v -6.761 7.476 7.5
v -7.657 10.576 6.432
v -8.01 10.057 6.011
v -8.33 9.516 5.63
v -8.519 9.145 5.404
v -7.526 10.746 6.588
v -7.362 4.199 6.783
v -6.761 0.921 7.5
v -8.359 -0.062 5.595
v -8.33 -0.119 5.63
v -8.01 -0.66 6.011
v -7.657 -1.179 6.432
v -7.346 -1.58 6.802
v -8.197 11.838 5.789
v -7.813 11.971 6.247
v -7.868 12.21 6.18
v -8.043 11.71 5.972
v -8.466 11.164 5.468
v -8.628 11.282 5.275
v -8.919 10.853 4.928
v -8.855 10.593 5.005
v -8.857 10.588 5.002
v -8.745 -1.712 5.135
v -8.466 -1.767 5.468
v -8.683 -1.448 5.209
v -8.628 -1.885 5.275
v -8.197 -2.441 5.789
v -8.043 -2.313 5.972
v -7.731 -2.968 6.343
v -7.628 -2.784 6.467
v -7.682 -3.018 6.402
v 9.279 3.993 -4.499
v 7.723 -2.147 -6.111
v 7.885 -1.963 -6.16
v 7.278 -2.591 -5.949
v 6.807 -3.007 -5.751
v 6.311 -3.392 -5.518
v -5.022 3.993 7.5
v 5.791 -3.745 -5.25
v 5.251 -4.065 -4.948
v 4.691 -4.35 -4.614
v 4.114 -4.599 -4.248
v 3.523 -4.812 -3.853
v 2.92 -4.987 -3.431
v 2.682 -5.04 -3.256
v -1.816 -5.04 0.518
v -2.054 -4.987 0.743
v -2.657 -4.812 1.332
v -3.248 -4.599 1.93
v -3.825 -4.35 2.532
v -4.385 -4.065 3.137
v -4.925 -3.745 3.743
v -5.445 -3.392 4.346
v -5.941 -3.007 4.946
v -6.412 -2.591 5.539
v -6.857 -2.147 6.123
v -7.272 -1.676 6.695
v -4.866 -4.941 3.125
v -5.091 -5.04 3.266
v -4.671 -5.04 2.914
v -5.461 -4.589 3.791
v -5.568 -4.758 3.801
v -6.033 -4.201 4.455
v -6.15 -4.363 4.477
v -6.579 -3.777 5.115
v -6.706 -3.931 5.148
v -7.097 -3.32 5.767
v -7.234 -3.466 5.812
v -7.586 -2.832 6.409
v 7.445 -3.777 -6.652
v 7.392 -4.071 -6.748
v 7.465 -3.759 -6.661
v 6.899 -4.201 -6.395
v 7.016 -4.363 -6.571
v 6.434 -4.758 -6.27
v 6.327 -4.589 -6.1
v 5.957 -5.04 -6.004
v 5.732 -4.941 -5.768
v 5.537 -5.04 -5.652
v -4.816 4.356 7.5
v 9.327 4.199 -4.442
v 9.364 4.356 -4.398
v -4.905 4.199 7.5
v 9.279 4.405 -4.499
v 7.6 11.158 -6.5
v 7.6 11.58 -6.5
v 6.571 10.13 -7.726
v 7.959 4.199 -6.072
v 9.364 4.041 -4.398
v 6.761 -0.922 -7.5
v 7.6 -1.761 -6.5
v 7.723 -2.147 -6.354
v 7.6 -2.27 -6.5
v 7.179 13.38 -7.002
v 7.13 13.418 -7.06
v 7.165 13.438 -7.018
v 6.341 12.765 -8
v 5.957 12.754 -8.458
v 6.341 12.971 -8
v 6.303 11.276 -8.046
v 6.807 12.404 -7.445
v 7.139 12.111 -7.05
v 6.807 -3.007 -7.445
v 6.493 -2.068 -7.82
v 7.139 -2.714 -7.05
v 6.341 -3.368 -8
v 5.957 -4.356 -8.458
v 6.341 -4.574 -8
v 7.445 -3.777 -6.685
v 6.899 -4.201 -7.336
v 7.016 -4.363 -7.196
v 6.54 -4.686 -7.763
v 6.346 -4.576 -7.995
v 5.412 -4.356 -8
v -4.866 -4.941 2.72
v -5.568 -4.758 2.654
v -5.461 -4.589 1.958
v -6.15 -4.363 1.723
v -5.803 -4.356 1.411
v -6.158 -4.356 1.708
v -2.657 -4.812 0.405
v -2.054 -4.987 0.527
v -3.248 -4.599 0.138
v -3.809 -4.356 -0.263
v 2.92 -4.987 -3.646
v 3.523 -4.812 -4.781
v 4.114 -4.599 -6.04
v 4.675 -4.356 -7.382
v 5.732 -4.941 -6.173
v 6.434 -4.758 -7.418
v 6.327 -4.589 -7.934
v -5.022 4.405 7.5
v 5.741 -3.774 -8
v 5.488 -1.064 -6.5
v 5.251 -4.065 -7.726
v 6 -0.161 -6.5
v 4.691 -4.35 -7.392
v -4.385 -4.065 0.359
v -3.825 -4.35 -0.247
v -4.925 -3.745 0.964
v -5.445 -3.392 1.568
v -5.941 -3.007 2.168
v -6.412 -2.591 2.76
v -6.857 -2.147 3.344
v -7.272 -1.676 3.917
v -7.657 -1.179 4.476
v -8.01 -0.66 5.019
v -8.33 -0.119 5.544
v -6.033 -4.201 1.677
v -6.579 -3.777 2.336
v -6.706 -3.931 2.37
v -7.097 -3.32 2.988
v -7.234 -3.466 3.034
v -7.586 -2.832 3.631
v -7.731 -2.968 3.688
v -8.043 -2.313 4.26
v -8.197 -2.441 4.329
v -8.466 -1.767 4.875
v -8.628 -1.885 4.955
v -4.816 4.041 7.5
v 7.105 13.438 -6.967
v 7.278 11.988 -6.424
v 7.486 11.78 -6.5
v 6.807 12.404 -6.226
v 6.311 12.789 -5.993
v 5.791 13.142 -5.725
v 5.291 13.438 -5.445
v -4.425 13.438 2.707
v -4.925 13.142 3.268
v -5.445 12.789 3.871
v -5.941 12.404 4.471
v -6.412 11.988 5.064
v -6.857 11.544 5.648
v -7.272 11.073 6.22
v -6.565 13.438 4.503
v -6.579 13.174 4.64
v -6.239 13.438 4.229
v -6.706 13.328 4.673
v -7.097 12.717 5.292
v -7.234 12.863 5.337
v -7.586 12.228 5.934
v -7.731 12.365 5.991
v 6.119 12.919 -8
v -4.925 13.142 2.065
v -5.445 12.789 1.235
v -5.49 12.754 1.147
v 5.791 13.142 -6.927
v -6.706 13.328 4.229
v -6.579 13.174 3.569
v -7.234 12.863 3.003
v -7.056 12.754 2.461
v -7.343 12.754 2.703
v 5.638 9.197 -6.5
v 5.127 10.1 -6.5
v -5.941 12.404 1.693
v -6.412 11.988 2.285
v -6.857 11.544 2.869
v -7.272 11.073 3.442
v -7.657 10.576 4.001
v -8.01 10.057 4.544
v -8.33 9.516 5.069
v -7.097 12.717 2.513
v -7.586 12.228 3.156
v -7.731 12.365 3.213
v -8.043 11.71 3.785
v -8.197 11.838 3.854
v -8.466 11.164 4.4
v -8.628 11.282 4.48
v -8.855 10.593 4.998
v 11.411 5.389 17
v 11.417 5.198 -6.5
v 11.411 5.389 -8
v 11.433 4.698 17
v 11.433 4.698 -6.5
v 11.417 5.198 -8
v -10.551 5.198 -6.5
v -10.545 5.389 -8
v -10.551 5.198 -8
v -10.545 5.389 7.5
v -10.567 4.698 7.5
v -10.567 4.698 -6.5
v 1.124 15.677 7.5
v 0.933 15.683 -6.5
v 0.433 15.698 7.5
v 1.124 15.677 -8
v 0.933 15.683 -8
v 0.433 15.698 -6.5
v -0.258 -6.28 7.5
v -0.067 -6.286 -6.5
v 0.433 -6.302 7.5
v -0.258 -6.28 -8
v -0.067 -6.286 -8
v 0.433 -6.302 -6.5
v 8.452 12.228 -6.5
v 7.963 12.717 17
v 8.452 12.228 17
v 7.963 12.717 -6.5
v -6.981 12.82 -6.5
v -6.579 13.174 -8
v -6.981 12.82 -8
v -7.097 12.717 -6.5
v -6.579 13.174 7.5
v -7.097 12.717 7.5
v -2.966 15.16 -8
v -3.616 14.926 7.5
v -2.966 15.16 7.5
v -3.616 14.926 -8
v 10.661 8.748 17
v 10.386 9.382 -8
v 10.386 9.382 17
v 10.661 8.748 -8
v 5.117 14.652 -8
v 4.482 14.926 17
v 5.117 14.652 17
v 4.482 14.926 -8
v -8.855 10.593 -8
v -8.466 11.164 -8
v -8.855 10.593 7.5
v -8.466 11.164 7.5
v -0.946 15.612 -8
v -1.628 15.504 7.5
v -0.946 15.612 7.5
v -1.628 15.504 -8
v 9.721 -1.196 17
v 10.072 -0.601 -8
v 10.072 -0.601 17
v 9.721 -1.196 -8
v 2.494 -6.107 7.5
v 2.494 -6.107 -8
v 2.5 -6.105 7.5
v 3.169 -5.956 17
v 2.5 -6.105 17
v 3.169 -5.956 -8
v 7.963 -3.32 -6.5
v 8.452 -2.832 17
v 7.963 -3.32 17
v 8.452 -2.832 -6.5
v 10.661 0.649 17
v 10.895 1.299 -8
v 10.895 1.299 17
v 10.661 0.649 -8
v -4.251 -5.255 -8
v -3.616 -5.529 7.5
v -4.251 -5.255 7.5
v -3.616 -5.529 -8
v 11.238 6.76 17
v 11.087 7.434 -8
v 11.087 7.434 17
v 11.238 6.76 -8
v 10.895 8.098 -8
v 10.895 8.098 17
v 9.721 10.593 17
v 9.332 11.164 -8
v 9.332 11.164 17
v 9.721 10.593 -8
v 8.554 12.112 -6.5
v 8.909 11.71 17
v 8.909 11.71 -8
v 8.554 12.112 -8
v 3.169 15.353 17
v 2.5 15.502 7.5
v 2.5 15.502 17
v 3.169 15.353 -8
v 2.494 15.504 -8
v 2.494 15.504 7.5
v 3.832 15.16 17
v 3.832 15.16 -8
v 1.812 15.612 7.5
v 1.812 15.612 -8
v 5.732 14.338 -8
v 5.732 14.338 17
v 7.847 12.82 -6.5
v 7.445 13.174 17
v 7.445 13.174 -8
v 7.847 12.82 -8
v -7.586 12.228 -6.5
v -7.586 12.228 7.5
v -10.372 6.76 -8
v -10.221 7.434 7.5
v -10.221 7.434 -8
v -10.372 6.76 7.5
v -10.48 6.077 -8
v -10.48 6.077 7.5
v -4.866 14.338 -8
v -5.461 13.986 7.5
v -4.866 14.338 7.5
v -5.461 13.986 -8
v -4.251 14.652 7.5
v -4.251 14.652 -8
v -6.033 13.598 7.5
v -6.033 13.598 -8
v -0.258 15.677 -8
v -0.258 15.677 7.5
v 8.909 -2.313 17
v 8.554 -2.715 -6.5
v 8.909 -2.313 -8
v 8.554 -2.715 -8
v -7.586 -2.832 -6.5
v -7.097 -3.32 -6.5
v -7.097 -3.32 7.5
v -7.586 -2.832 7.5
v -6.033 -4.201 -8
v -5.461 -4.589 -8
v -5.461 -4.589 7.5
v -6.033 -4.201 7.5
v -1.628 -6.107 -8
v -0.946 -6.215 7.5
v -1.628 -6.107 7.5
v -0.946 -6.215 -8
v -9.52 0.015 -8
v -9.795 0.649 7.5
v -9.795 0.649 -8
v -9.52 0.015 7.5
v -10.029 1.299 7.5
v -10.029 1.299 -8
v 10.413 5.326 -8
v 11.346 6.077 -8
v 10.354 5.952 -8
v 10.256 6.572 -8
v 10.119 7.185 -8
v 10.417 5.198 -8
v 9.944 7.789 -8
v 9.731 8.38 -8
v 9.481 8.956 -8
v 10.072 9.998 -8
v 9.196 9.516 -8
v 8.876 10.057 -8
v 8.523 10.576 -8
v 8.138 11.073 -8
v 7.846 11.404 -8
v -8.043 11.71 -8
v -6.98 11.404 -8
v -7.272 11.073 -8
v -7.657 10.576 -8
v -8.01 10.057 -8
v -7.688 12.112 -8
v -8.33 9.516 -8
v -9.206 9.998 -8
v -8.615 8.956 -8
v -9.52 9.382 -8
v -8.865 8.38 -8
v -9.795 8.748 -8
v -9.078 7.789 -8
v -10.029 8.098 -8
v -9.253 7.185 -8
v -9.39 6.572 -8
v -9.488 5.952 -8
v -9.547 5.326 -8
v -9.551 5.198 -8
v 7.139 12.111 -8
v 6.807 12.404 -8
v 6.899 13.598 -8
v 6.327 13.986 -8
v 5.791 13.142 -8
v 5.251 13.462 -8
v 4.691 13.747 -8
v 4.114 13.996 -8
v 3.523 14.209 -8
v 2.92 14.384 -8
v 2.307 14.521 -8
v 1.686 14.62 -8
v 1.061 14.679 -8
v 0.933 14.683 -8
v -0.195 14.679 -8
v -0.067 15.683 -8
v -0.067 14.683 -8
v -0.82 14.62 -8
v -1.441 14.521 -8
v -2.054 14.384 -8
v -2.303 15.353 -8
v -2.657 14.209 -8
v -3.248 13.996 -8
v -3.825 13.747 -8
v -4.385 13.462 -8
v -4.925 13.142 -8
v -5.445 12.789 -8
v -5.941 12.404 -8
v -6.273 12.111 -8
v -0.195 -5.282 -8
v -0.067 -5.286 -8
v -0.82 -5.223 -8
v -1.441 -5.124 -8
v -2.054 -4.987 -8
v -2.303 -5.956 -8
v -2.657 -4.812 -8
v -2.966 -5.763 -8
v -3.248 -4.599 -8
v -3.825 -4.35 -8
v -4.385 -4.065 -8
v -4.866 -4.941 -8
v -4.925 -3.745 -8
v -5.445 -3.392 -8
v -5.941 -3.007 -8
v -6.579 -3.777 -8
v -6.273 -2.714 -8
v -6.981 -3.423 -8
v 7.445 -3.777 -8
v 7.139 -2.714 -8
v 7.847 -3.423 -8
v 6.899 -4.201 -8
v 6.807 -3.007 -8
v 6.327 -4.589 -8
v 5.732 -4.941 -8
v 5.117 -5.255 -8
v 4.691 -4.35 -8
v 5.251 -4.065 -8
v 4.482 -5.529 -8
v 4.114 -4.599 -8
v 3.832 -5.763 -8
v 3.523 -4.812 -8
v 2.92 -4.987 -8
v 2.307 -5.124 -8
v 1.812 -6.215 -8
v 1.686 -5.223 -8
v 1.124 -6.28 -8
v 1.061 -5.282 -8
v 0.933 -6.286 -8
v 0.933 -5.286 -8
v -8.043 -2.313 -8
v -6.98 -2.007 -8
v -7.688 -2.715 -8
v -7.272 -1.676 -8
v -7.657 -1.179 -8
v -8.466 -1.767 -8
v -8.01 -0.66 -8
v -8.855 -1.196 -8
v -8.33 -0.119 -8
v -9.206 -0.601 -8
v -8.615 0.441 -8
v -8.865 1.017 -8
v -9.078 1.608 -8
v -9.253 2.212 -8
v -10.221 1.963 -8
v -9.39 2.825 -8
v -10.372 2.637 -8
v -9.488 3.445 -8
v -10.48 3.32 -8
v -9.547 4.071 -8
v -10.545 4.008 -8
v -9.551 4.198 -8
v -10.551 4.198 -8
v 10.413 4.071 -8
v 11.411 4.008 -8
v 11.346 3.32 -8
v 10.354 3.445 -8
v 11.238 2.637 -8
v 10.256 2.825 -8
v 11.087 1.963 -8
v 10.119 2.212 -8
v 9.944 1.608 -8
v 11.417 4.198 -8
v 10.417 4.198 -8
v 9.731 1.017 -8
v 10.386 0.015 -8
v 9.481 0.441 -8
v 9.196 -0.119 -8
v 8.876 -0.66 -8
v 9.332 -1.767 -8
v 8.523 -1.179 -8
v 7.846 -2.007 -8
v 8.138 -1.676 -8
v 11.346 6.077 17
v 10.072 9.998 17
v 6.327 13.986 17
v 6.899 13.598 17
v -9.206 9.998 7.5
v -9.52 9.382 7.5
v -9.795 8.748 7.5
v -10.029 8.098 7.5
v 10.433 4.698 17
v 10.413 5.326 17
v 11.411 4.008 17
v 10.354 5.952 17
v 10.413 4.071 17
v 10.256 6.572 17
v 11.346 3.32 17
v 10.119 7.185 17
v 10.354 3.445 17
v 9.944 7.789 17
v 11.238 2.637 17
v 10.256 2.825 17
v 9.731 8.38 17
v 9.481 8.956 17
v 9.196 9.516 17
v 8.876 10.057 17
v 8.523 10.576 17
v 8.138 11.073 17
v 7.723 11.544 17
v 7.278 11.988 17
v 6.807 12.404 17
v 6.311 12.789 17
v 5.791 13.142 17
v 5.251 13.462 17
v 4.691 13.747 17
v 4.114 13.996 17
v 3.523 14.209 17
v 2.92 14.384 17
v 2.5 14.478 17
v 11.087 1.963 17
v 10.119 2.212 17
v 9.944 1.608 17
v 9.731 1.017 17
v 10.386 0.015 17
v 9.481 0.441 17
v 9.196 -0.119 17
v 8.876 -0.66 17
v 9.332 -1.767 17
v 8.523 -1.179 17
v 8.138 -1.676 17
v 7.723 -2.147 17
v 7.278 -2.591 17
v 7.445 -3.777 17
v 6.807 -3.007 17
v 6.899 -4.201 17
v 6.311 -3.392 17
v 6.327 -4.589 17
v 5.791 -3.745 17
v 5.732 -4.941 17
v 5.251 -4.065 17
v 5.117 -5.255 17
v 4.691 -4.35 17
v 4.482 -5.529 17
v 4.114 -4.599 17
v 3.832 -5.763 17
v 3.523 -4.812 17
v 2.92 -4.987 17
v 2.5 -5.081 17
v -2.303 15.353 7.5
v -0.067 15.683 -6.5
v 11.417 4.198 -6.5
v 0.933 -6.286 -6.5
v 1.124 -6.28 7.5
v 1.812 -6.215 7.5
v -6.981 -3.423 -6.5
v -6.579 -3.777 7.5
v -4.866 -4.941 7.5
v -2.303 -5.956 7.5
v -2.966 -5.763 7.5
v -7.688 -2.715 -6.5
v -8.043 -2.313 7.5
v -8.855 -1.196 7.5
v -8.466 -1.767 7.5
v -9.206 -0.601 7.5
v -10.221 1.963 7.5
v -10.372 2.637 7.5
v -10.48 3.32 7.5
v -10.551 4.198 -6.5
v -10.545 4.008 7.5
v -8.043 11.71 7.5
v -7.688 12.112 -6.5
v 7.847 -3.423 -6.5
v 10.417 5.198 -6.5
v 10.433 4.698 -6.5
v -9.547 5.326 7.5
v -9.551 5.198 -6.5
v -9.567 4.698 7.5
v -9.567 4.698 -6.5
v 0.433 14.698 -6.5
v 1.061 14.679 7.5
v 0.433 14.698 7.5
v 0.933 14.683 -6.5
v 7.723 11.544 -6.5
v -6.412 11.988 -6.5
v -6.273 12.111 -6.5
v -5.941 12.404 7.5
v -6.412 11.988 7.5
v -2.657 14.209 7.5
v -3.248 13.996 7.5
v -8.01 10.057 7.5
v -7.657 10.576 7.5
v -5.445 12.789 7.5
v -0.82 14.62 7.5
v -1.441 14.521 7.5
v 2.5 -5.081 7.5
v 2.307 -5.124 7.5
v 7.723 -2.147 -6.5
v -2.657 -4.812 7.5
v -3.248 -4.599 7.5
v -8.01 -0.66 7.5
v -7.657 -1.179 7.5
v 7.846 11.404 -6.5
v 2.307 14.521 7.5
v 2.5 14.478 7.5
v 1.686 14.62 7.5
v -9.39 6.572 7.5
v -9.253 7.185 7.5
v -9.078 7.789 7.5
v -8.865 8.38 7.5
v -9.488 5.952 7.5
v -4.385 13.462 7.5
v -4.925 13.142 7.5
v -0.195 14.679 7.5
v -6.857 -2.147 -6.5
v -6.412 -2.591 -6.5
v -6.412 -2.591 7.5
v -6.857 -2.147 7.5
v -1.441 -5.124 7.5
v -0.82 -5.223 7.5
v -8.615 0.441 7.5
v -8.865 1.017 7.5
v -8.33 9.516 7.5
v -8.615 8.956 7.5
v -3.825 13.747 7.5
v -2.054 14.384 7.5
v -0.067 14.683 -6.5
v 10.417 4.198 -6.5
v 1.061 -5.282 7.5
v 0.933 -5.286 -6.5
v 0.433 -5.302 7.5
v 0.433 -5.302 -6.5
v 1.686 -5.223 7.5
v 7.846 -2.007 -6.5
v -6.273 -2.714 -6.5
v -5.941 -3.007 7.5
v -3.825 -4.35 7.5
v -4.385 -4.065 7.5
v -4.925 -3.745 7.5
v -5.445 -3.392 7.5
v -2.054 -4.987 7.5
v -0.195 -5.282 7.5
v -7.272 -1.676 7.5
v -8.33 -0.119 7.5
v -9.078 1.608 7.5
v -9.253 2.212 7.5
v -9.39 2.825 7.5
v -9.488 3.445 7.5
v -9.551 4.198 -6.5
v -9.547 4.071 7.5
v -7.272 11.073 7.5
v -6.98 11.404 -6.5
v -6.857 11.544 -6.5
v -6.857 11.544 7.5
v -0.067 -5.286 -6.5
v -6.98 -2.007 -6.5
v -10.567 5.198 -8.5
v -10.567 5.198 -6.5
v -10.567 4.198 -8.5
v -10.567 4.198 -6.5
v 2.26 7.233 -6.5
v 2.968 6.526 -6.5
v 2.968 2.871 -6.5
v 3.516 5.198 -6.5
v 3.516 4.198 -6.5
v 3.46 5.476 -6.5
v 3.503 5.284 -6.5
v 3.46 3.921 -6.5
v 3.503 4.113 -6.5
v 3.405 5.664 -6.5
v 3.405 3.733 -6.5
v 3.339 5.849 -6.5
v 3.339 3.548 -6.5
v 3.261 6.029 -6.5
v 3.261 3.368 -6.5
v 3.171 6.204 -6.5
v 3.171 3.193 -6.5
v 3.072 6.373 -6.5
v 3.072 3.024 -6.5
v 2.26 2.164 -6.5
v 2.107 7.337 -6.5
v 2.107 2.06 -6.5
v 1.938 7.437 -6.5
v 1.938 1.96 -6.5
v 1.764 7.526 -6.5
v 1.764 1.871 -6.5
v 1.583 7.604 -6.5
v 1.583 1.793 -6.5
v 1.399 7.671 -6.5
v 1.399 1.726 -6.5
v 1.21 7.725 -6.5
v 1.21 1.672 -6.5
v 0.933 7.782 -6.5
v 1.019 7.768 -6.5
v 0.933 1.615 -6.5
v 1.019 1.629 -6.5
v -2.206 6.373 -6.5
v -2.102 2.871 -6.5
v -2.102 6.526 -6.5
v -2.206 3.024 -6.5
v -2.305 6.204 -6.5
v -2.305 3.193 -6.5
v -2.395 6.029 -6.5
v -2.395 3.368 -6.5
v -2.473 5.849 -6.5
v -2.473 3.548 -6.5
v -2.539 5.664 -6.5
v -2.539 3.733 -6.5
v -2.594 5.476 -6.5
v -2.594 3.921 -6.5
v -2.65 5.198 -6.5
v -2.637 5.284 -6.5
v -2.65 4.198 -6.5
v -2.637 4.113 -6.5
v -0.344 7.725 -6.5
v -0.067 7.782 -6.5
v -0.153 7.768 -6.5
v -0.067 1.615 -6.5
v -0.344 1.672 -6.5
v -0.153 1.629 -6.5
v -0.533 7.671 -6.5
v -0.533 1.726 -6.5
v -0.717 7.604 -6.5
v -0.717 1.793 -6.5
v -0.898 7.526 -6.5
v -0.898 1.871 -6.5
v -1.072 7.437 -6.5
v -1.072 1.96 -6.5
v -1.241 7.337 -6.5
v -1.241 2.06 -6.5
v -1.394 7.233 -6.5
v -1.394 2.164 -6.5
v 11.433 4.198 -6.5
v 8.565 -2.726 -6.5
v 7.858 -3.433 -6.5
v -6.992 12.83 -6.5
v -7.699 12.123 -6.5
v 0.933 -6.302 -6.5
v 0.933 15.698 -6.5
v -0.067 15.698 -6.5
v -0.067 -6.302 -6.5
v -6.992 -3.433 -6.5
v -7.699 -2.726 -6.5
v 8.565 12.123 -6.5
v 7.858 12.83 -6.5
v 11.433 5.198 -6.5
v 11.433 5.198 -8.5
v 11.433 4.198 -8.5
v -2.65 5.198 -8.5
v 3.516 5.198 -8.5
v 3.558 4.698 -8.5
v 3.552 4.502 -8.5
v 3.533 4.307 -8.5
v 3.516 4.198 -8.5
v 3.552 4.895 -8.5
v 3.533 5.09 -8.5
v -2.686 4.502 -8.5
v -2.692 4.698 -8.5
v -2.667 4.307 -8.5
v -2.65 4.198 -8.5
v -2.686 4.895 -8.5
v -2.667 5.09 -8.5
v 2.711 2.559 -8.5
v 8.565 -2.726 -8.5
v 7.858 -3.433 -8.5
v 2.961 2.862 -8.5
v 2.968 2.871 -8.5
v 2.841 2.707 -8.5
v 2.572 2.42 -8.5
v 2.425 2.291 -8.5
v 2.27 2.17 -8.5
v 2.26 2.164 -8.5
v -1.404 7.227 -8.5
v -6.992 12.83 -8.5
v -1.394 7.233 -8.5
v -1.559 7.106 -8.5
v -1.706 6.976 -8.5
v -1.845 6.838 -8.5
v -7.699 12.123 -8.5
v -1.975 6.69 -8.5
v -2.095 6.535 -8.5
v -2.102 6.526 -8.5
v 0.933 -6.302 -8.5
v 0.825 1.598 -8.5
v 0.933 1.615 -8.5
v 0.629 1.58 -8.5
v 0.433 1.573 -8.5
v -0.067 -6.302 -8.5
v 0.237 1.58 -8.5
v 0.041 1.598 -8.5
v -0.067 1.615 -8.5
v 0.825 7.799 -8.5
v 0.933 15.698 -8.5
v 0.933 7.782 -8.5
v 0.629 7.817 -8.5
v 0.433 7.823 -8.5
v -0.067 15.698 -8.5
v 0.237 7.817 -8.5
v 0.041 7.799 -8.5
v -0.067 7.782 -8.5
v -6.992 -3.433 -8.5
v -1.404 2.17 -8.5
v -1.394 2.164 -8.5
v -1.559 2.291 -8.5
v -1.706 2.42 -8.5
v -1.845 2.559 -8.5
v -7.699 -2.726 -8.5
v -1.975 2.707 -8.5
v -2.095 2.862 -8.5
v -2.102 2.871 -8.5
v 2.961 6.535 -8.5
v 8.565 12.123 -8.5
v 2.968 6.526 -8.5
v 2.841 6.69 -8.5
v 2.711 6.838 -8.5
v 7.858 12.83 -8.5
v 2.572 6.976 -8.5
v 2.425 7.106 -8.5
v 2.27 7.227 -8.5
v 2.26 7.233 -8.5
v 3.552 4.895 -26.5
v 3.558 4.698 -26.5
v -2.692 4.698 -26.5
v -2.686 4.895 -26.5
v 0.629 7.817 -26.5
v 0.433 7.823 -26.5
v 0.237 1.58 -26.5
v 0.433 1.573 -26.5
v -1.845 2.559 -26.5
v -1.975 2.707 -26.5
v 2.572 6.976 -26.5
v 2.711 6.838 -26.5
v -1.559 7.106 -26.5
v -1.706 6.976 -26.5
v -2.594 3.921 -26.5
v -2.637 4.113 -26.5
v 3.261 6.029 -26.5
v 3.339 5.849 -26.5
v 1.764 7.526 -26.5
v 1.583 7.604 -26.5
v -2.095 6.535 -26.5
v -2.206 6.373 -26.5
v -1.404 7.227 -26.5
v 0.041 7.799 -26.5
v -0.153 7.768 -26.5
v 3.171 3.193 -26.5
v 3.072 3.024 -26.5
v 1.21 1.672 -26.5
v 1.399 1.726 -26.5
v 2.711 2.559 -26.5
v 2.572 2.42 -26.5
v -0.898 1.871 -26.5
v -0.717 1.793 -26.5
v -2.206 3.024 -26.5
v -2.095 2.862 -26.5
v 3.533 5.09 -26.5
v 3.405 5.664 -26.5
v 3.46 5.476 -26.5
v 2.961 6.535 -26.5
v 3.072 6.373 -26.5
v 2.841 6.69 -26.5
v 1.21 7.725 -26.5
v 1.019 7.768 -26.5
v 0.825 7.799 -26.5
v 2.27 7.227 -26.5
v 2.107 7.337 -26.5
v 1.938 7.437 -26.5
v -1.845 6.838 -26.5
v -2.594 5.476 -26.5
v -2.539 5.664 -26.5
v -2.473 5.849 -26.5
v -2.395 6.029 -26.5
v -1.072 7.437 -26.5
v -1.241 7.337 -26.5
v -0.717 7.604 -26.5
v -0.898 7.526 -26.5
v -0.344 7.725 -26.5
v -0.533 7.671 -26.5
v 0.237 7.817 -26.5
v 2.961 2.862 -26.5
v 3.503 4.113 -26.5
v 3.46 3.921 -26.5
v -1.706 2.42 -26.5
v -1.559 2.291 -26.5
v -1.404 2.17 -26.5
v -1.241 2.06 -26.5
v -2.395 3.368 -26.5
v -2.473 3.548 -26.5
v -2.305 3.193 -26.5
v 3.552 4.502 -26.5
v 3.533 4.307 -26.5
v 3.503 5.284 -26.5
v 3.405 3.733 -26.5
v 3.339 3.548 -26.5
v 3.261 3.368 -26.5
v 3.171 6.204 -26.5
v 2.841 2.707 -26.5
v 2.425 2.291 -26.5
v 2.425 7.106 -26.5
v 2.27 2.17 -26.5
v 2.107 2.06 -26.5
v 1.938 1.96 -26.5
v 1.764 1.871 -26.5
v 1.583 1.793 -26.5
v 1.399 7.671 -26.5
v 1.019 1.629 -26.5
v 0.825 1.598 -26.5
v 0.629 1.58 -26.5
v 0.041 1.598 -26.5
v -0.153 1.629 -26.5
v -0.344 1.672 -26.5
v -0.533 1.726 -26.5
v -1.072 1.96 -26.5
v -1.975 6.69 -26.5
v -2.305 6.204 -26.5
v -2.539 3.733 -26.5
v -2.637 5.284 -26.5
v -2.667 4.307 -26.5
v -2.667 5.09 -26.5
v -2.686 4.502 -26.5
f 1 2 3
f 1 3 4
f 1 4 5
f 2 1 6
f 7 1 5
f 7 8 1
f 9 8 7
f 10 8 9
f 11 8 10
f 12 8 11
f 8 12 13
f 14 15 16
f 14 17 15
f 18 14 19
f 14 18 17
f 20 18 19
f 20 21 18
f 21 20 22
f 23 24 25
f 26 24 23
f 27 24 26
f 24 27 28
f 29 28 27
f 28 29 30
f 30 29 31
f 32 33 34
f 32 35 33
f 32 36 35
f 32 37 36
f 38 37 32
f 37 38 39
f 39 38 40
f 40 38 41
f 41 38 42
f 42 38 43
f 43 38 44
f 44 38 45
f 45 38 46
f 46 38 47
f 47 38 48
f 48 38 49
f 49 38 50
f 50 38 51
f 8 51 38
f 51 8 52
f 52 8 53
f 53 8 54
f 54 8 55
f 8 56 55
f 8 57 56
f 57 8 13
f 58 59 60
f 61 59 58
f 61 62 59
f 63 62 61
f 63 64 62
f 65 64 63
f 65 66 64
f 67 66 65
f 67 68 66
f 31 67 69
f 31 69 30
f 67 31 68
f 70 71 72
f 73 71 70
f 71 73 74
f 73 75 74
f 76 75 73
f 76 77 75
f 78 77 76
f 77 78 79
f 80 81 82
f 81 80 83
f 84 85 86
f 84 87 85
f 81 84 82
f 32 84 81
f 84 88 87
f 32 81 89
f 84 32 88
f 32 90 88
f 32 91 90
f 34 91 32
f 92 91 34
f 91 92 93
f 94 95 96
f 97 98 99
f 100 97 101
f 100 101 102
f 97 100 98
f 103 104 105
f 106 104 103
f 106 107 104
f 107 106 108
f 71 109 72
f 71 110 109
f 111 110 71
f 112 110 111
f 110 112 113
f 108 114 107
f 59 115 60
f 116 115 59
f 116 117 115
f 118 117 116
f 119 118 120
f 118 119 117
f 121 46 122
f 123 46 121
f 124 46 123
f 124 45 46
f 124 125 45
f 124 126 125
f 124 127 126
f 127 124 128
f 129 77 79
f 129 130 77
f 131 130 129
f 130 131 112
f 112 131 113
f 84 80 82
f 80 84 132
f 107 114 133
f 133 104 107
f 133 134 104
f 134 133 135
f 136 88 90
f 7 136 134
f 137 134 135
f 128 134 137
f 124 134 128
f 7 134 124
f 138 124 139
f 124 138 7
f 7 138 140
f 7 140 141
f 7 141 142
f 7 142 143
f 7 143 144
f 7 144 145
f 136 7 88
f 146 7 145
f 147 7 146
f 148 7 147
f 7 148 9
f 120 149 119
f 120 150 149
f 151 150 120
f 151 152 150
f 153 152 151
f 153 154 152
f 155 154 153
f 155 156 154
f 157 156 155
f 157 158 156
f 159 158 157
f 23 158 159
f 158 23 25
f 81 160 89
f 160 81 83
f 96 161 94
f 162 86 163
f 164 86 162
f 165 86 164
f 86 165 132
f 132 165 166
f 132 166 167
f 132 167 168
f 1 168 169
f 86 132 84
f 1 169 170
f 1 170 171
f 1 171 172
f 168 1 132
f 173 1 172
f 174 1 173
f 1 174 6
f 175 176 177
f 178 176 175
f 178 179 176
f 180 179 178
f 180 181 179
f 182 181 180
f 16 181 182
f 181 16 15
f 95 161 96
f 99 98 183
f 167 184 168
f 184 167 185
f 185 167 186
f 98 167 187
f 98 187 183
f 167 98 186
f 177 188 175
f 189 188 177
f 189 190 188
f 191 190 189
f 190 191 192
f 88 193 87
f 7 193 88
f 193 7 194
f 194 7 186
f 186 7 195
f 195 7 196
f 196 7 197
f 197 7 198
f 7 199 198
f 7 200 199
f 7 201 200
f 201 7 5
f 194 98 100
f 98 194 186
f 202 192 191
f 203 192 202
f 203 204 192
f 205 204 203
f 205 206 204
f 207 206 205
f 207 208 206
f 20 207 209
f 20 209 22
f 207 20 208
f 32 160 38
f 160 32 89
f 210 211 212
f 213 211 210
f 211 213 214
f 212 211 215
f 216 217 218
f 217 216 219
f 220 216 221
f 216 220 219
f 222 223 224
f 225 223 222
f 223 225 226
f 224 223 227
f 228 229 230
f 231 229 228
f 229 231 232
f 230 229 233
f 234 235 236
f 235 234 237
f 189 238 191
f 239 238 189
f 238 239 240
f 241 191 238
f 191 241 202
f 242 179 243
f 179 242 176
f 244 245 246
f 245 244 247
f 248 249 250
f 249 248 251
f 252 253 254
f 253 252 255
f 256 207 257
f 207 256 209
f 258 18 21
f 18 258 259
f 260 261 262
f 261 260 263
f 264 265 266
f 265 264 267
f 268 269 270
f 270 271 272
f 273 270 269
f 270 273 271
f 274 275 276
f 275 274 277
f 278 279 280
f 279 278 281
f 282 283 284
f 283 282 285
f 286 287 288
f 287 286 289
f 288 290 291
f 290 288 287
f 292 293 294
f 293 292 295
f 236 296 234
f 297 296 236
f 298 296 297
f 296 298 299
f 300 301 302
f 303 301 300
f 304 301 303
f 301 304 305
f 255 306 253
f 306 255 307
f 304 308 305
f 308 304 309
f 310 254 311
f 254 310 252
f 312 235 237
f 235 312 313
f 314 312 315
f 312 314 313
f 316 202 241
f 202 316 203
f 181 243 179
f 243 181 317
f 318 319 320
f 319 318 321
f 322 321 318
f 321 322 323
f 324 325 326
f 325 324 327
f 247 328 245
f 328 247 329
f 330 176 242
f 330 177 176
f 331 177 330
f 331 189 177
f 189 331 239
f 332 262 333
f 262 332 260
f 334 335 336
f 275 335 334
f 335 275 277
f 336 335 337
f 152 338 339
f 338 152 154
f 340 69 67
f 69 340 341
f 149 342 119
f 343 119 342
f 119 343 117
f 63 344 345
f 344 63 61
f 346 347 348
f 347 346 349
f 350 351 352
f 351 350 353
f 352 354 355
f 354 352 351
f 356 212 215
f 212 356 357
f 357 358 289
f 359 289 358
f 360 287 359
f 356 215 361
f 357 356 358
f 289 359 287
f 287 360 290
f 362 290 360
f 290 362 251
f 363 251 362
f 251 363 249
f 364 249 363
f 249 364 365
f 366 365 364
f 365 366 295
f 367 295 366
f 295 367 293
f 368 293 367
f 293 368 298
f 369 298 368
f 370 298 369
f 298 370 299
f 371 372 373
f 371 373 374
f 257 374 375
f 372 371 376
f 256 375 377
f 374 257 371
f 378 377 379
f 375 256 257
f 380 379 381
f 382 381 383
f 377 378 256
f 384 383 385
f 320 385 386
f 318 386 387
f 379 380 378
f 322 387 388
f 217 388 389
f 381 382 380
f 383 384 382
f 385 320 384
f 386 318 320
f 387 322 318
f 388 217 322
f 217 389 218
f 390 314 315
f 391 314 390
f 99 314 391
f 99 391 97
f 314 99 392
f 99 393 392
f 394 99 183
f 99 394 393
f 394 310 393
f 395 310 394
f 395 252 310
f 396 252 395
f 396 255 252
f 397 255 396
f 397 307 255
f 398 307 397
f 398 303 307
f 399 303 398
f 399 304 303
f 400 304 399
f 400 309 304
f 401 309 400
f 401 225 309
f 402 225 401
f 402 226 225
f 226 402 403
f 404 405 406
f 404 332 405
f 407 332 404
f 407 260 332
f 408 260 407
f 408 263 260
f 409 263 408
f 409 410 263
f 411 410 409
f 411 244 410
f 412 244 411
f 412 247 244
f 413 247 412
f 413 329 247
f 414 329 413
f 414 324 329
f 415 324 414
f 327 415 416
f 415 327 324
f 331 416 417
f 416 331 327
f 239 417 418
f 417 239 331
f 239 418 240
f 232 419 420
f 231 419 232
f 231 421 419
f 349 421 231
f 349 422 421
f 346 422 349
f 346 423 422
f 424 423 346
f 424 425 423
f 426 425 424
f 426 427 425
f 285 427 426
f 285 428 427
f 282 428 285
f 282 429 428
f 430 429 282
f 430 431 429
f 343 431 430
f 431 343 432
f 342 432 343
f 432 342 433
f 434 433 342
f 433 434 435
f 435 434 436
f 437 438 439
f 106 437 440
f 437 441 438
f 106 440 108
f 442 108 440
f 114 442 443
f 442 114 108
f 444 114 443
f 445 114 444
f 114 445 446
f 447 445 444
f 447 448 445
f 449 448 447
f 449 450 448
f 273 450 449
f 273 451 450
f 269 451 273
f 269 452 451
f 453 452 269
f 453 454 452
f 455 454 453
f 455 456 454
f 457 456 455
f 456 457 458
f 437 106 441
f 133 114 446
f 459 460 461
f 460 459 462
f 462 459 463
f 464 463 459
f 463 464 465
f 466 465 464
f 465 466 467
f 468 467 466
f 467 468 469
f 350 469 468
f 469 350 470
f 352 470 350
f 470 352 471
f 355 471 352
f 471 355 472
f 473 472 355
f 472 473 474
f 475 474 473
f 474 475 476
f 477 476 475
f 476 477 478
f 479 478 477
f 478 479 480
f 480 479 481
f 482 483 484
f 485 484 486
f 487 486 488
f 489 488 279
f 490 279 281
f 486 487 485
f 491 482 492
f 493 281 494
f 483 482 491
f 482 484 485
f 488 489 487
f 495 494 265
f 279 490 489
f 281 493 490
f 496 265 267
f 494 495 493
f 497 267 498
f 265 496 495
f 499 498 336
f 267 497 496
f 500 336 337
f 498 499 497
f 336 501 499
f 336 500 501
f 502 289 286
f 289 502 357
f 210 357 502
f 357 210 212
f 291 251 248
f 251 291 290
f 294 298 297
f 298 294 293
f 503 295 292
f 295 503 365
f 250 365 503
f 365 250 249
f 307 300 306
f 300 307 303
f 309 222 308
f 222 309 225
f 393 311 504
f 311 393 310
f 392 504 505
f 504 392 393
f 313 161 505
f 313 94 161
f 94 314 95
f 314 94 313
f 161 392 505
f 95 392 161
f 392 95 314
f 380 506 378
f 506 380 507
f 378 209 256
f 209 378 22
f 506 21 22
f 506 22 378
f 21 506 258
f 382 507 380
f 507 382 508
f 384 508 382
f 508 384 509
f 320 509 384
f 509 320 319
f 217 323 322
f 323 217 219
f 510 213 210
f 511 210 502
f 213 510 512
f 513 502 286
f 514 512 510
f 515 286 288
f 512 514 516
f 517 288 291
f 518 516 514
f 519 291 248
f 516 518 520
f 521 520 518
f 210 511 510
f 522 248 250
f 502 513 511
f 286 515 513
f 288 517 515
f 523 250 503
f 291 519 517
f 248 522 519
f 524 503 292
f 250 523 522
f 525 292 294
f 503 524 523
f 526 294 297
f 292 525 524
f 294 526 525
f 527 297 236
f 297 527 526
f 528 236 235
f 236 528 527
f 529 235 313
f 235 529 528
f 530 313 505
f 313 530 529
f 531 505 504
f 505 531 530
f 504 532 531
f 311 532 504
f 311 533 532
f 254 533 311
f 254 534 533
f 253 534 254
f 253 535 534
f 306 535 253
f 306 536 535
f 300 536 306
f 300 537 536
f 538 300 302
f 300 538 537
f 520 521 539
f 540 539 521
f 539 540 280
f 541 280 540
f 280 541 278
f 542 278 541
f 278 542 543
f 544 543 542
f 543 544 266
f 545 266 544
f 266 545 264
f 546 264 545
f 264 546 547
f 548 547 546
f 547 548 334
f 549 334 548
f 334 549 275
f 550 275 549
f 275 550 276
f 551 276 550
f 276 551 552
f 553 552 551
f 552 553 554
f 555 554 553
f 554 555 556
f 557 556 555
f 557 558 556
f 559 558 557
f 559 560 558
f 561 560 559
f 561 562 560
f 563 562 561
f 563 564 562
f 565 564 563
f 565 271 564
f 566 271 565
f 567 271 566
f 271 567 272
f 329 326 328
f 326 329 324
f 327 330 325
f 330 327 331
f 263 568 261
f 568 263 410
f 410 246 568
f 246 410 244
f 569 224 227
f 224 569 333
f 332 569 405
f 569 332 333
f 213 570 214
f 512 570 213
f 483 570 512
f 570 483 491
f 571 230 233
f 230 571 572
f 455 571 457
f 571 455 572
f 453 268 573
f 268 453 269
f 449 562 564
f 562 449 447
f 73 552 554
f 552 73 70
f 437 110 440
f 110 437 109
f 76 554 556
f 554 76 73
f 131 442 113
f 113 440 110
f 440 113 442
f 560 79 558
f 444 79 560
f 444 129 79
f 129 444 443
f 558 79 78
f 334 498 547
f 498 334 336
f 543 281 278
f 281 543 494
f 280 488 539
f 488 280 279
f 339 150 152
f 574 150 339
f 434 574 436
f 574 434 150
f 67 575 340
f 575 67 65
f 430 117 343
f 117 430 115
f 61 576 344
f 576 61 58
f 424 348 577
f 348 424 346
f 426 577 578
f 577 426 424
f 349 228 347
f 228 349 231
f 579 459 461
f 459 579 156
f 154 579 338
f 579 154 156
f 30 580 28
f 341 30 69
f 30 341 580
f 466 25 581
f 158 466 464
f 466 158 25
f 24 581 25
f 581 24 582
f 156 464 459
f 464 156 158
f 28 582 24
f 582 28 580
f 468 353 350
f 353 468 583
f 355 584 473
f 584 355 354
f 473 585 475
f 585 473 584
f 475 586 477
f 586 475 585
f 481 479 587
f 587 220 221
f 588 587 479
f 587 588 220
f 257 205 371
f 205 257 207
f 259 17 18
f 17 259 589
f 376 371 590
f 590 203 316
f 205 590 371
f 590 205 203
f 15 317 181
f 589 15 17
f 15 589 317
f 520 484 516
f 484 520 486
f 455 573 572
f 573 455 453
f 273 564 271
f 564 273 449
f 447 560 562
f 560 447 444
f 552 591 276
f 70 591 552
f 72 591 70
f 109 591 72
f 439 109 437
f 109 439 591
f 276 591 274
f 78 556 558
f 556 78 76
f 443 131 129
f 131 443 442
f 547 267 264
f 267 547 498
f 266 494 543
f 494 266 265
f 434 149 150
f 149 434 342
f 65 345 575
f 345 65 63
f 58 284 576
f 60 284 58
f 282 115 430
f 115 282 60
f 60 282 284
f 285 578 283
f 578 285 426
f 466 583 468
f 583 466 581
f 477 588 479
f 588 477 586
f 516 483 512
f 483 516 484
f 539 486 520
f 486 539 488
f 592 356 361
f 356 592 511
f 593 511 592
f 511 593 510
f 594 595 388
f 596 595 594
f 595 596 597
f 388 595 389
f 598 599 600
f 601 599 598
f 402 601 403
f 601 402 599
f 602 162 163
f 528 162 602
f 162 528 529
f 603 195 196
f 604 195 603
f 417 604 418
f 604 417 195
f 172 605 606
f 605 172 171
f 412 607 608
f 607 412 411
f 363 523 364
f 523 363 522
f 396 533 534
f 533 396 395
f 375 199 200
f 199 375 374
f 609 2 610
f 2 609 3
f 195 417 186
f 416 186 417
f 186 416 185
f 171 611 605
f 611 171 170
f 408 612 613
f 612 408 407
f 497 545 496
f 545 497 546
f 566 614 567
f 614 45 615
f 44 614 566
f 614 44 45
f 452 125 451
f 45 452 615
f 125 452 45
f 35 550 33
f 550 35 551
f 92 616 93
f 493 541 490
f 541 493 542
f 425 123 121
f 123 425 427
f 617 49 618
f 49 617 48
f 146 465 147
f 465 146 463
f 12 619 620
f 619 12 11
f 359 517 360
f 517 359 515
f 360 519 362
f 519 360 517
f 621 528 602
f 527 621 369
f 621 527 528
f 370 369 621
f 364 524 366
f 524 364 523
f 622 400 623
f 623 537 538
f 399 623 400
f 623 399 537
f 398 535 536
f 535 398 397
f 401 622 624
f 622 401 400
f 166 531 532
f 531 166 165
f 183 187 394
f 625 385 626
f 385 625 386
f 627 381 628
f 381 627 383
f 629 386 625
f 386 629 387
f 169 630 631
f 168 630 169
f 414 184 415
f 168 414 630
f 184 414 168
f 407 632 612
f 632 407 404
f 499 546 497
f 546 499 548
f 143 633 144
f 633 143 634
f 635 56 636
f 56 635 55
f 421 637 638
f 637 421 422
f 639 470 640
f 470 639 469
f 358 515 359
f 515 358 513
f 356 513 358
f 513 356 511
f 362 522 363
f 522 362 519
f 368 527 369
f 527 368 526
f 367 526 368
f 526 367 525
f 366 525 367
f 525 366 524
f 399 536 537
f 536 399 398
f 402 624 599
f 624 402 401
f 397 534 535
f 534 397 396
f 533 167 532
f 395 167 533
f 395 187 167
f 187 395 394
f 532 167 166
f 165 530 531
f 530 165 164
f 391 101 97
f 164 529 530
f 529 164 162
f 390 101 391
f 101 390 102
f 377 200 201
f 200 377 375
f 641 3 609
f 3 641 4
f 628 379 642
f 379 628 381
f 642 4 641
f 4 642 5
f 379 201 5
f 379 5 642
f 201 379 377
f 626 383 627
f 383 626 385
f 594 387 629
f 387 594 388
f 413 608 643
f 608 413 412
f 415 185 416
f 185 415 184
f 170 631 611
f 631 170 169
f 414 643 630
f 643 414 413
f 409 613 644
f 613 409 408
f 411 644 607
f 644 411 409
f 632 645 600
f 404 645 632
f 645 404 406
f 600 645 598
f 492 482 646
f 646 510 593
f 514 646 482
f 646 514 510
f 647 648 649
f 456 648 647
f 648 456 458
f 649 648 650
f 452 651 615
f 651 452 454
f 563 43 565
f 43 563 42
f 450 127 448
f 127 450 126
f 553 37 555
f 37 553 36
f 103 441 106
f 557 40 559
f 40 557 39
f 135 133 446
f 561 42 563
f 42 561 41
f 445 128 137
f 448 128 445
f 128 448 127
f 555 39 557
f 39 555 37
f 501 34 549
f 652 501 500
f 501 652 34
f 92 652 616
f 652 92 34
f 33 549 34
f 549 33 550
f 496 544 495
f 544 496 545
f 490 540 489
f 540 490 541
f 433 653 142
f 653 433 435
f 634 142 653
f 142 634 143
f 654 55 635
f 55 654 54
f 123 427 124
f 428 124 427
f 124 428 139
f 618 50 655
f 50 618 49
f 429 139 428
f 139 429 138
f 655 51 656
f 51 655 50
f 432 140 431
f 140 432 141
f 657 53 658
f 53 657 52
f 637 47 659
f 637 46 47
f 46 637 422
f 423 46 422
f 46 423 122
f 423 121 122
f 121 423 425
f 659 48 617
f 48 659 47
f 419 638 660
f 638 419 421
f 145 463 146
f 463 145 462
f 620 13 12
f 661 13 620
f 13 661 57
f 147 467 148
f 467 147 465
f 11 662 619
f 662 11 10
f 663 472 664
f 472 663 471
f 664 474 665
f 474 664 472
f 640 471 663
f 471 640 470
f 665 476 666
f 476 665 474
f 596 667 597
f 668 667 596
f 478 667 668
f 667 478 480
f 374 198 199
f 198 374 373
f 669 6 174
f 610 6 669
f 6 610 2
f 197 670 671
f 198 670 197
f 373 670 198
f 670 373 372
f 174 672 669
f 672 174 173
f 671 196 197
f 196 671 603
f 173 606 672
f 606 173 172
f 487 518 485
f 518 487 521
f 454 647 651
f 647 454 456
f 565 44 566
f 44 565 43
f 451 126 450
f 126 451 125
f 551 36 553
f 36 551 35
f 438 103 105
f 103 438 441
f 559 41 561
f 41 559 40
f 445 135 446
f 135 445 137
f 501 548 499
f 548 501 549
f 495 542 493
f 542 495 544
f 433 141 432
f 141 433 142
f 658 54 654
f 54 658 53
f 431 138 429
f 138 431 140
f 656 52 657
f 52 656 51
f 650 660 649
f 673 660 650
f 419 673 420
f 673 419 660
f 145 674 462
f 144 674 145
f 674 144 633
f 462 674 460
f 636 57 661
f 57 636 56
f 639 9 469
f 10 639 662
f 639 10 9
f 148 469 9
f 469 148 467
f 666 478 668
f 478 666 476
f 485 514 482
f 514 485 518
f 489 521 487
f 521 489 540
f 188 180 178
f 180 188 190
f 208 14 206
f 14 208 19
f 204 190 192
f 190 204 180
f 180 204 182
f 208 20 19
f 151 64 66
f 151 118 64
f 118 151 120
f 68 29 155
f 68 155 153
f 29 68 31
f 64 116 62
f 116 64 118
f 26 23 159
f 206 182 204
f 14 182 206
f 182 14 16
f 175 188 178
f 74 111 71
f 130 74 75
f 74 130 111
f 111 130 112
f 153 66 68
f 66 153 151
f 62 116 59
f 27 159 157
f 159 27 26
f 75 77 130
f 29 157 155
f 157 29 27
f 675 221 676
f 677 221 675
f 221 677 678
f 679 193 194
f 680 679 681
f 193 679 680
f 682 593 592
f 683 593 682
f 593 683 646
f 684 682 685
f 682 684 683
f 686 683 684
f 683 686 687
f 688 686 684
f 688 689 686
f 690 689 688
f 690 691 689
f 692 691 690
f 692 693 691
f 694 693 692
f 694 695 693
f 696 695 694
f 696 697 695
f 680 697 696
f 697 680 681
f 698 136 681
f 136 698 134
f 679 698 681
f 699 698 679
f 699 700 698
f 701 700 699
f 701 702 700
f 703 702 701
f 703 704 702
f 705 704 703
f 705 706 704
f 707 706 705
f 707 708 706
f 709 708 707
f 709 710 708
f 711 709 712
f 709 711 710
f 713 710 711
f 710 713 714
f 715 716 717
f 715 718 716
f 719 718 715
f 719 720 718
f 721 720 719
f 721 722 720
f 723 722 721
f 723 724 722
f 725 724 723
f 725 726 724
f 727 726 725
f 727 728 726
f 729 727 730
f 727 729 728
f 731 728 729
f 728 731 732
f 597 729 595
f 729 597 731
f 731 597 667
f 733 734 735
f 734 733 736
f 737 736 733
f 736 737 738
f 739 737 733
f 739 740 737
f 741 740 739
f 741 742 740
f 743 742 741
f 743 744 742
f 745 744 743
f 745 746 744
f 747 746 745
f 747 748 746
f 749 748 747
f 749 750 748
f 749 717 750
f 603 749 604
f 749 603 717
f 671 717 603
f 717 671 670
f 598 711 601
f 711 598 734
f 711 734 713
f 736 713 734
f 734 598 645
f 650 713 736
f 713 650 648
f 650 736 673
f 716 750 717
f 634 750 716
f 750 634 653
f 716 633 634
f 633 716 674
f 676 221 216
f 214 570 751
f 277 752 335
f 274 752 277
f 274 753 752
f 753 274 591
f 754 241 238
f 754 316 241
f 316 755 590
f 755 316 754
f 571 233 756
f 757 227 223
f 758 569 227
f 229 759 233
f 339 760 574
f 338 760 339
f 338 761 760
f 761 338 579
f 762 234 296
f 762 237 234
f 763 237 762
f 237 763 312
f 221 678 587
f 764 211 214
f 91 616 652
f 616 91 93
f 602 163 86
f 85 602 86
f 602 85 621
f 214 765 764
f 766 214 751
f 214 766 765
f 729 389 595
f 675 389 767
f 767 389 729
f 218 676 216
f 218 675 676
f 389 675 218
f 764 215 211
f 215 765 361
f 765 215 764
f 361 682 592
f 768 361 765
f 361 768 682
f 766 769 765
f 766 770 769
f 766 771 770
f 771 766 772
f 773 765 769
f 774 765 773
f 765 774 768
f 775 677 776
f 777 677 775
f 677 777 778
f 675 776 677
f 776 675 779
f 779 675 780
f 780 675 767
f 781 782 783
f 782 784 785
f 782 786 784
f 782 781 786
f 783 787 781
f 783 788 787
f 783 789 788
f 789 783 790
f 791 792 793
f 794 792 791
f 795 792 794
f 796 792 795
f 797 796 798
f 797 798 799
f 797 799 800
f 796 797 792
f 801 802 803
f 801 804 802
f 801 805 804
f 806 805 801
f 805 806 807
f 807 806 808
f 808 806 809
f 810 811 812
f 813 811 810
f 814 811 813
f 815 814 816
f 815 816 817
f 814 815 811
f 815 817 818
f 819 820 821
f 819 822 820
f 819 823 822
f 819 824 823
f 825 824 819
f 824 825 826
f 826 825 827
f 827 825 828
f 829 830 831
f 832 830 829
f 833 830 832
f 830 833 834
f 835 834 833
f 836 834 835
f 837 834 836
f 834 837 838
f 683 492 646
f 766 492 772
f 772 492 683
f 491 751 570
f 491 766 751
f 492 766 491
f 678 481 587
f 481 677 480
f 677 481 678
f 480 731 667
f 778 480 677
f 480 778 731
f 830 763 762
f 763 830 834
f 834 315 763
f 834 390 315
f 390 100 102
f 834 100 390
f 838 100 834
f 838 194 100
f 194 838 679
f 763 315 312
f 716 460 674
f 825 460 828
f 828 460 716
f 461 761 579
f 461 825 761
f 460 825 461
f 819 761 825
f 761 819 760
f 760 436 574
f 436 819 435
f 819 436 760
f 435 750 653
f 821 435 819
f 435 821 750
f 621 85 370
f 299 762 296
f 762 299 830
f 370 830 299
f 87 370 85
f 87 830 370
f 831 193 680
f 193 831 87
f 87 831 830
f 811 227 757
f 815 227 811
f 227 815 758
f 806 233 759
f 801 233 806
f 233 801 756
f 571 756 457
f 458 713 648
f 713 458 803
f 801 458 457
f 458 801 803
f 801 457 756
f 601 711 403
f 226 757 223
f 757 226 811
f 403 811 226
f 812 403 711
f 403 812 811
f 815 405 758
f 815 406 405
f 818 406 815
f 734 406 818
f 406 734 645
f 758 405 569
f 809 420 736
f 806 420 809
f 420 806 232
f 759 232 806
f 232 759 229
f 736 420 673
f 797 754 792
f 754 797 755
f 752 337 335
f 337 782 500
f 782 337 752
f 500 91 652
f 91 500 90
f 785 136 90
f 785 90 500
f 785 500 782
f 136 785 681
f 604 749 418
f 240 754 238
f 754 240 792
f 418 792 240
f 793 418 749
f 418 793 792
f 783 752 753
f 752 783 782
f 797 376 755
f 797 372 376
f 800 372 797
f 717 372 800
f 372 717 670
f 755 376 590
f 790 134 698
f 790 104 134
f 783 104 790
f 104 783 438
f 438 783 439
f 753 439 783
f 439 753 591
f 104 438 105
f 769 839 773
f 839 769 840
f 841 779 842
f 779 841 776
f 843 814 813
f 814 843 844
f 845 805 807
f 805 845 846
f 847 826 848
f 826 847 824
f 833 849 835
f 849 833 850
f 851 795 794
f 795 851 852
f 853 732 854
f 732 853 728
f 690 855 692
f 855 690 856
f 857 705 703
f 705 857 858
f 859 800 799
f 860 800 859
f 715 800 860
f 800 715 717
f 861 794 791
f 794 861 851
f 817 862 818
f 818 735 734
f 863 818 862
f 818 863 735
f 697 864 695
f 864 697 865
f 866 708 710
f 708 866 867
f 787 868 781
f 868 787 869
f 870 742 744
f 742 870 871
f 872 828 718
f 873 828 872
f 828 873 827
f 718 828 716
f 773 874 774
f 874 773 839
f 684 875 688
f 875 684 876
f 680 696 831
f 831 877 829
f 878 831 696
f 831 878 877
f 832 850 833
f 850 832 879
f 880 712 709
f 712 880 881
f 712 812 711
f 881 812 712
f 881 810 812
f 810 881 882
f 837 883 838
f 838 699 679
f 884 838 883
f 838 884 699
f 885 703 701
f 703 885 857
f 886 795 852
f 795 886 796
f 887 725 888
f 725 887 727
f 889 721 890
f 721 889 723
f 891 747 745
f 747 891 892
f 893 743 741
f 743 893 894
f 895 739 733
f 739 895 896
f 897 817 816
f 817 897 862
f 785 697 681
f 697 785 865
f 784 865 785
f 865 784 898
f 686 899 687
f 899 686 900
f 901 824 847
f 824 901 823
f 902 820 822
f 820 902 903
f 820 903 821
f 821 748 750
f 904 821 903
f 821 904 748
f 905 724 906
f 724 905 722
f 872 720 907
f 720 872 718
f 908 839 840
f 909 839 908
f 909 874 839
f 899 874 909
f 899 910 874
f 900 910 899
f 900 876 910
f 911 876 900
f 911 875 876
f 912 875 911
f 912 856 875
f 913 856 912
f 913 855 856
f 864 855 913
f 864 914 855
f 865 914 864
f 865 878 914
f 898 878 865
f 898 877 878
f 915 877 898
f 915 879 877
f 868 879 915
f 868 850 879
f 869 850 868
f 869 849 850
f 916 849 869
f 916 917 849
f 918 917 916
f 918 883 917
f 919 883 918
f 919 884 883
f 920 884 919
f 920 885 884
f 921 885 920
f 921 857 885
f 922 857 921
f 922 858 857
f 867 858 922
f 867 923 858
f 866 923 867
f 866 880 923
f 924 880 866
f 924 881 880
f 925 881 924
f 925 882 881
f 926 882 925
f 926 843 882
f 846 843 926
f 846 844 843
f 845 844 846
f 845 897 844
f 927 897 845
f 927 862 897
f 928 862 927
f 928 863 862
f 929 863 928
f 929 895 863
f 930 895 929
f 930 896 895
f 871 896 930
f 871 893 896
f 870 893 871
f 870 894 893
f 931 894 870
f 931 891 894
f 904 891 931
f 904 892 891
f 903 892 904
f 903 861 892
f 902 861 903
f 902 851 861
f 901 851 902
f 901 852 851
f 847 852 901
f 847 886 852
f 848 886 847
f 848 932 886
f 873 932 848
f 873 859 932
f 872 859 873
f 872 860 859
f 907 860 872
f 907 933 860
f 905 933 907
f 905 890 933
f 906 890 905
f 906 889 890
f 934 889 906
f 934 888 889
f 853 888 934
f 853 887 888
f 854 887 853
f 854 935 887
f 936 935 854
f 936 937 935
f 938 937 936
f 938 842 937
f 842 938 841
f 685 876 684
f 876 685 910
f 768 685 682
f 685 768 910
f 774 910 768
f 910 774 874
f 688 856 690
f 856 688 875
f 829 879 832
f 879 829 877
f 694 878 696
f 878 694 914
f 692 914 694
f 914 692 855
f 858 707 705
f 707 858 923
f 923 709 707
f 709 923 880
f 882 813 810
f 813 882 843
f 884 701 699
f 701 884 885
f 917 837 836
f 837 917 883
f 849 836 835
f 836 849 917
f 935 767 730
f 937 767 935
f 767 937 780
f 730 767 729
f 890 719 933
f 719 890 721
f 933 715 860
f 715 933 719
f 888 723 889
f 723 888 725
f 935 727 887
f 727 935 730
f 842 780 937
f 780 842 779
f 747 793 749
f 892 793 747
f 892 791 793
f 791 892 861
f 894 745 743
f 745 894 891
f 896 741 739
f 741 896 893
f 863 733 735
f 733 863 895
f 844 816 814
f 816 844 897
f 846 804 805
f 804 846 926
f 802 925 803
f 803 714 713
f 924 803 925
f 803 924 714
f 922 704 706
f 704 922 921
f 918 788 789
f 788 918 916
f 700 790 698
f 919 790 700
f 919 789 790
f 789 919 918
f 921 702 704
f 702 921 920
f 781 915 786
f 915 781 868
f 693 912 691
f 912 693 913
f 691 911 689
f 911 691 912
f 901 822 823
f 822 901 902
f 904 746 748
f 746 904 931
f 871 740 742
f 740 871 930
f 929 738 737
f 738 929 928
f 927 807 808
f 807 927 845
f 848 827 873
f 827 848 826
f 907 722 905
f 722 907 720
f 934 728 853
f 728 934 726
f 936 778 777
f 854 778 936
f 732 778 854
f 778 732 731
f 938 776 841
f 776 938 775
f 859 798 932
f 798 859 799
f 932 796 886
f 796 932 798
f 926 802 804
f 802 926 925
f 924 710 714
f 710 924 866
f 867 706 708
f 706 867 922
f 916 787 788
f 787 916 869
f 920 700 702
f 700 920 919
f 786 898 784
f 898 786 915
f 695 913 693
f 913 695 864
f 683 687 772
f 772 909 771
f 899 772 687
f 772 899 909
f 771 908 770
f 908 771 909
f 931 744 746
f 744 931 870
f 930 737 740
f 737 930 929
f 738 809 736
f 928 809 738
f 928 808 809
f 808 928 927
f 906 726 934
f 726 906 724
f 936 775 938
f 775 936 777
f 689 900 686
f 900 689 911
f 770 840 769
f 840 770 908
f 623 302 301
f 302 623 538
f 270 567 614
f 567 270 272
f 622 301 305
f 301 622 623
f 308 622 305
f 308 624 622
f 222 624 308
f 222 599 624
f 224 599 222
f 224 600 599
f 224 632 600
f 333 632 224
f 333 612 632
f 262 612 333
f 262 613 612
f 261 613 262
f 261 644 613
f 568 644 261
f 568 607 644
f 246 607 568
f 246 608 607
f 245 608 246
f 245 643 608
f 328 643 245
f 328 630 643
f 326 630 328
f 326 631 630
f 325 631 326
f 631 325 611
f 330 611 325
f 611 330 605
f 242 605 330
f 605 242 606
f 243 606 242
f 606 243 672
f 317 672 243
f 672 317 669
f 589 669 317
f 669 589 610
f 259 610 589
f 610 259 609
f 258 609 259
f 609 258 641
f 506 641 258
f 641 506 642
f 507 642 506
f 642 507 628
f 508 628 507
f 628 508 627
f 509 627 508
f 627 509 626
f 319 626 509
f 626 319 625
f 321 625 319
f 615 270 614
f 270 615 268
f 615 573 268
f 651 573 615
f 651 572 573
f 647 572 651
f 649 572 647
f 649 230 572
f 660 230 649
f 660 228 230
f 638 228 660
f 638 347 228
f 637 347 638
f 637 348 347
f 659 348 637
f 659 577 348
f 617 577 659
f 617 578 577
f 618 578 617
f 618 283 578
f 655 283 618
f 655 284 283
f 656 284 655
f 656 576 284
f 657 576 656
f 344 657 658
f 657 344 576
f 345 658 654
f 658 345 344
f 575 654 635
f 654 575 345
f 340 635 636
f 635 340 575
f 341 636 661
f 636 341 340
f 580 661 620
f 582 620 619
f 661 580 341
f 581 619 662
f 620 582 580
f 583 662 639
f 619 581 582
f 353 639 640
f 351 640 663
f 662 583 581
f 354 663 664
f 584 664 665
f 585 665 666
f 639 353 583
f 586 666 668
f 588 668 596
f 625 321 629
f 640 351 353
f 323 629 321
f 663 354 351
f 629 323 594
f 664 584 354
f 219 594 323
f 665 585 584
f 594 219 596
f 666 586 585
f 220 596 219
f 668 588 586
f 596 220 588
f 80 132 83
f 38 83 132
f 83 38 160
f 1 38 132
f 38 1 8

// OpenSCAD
$fn=100;
bottom_pin_diameter = 6.2;

module sampleholder() {}

x=20;
y=10;
thickness=2;
angle=20;
height=25;
diameter=20;
wall_thickness=2;
difference() {
    union(){
        difference() {
            union() {
                rotate([0,40,0]) {
                    rotate([angle, 0, 0])cube([x, y, thickness], center=true);
                    translate([0,cos(angle)*y-cos(1.5),0]) rotate([-angle, 0, 0]) cube([x, y, thickness], center=true);
                }
                translate([0.5*cos(30),0.5*cos(angle)*y,-8]) {
                    difference() {
                        cylinder(d=diameter+wall_thickness, h=height);
                        cylinder(d=diameter, h=3*height, center=true);
                    }
                }
            }
            translate([0.5*cos(30),0.5*cos(angle)*y,-0.5*height]) {
                difference() {
                    cylinder(d=2*diameter, h=1.5*height);
                    cylinder(d=diameter+1.2*wall_thickness, h=1.5*height);
                }
            }
        }
        translate([0.5*cos(30),0.5*cos(angle)*y,-7.5]) {
            for (a=[0:45:180]) {
                rotate([0,0,a]) cube([diameter+wall_thickness, 1, 2], center=true);
            }
            translate([0,0,-9]) cylinder(d=6.25, h=20, center=true);
        }
    }
    translate([-5,0.5*cos(angle)*y,15]) #cube([15,25,15], center=true);
}
